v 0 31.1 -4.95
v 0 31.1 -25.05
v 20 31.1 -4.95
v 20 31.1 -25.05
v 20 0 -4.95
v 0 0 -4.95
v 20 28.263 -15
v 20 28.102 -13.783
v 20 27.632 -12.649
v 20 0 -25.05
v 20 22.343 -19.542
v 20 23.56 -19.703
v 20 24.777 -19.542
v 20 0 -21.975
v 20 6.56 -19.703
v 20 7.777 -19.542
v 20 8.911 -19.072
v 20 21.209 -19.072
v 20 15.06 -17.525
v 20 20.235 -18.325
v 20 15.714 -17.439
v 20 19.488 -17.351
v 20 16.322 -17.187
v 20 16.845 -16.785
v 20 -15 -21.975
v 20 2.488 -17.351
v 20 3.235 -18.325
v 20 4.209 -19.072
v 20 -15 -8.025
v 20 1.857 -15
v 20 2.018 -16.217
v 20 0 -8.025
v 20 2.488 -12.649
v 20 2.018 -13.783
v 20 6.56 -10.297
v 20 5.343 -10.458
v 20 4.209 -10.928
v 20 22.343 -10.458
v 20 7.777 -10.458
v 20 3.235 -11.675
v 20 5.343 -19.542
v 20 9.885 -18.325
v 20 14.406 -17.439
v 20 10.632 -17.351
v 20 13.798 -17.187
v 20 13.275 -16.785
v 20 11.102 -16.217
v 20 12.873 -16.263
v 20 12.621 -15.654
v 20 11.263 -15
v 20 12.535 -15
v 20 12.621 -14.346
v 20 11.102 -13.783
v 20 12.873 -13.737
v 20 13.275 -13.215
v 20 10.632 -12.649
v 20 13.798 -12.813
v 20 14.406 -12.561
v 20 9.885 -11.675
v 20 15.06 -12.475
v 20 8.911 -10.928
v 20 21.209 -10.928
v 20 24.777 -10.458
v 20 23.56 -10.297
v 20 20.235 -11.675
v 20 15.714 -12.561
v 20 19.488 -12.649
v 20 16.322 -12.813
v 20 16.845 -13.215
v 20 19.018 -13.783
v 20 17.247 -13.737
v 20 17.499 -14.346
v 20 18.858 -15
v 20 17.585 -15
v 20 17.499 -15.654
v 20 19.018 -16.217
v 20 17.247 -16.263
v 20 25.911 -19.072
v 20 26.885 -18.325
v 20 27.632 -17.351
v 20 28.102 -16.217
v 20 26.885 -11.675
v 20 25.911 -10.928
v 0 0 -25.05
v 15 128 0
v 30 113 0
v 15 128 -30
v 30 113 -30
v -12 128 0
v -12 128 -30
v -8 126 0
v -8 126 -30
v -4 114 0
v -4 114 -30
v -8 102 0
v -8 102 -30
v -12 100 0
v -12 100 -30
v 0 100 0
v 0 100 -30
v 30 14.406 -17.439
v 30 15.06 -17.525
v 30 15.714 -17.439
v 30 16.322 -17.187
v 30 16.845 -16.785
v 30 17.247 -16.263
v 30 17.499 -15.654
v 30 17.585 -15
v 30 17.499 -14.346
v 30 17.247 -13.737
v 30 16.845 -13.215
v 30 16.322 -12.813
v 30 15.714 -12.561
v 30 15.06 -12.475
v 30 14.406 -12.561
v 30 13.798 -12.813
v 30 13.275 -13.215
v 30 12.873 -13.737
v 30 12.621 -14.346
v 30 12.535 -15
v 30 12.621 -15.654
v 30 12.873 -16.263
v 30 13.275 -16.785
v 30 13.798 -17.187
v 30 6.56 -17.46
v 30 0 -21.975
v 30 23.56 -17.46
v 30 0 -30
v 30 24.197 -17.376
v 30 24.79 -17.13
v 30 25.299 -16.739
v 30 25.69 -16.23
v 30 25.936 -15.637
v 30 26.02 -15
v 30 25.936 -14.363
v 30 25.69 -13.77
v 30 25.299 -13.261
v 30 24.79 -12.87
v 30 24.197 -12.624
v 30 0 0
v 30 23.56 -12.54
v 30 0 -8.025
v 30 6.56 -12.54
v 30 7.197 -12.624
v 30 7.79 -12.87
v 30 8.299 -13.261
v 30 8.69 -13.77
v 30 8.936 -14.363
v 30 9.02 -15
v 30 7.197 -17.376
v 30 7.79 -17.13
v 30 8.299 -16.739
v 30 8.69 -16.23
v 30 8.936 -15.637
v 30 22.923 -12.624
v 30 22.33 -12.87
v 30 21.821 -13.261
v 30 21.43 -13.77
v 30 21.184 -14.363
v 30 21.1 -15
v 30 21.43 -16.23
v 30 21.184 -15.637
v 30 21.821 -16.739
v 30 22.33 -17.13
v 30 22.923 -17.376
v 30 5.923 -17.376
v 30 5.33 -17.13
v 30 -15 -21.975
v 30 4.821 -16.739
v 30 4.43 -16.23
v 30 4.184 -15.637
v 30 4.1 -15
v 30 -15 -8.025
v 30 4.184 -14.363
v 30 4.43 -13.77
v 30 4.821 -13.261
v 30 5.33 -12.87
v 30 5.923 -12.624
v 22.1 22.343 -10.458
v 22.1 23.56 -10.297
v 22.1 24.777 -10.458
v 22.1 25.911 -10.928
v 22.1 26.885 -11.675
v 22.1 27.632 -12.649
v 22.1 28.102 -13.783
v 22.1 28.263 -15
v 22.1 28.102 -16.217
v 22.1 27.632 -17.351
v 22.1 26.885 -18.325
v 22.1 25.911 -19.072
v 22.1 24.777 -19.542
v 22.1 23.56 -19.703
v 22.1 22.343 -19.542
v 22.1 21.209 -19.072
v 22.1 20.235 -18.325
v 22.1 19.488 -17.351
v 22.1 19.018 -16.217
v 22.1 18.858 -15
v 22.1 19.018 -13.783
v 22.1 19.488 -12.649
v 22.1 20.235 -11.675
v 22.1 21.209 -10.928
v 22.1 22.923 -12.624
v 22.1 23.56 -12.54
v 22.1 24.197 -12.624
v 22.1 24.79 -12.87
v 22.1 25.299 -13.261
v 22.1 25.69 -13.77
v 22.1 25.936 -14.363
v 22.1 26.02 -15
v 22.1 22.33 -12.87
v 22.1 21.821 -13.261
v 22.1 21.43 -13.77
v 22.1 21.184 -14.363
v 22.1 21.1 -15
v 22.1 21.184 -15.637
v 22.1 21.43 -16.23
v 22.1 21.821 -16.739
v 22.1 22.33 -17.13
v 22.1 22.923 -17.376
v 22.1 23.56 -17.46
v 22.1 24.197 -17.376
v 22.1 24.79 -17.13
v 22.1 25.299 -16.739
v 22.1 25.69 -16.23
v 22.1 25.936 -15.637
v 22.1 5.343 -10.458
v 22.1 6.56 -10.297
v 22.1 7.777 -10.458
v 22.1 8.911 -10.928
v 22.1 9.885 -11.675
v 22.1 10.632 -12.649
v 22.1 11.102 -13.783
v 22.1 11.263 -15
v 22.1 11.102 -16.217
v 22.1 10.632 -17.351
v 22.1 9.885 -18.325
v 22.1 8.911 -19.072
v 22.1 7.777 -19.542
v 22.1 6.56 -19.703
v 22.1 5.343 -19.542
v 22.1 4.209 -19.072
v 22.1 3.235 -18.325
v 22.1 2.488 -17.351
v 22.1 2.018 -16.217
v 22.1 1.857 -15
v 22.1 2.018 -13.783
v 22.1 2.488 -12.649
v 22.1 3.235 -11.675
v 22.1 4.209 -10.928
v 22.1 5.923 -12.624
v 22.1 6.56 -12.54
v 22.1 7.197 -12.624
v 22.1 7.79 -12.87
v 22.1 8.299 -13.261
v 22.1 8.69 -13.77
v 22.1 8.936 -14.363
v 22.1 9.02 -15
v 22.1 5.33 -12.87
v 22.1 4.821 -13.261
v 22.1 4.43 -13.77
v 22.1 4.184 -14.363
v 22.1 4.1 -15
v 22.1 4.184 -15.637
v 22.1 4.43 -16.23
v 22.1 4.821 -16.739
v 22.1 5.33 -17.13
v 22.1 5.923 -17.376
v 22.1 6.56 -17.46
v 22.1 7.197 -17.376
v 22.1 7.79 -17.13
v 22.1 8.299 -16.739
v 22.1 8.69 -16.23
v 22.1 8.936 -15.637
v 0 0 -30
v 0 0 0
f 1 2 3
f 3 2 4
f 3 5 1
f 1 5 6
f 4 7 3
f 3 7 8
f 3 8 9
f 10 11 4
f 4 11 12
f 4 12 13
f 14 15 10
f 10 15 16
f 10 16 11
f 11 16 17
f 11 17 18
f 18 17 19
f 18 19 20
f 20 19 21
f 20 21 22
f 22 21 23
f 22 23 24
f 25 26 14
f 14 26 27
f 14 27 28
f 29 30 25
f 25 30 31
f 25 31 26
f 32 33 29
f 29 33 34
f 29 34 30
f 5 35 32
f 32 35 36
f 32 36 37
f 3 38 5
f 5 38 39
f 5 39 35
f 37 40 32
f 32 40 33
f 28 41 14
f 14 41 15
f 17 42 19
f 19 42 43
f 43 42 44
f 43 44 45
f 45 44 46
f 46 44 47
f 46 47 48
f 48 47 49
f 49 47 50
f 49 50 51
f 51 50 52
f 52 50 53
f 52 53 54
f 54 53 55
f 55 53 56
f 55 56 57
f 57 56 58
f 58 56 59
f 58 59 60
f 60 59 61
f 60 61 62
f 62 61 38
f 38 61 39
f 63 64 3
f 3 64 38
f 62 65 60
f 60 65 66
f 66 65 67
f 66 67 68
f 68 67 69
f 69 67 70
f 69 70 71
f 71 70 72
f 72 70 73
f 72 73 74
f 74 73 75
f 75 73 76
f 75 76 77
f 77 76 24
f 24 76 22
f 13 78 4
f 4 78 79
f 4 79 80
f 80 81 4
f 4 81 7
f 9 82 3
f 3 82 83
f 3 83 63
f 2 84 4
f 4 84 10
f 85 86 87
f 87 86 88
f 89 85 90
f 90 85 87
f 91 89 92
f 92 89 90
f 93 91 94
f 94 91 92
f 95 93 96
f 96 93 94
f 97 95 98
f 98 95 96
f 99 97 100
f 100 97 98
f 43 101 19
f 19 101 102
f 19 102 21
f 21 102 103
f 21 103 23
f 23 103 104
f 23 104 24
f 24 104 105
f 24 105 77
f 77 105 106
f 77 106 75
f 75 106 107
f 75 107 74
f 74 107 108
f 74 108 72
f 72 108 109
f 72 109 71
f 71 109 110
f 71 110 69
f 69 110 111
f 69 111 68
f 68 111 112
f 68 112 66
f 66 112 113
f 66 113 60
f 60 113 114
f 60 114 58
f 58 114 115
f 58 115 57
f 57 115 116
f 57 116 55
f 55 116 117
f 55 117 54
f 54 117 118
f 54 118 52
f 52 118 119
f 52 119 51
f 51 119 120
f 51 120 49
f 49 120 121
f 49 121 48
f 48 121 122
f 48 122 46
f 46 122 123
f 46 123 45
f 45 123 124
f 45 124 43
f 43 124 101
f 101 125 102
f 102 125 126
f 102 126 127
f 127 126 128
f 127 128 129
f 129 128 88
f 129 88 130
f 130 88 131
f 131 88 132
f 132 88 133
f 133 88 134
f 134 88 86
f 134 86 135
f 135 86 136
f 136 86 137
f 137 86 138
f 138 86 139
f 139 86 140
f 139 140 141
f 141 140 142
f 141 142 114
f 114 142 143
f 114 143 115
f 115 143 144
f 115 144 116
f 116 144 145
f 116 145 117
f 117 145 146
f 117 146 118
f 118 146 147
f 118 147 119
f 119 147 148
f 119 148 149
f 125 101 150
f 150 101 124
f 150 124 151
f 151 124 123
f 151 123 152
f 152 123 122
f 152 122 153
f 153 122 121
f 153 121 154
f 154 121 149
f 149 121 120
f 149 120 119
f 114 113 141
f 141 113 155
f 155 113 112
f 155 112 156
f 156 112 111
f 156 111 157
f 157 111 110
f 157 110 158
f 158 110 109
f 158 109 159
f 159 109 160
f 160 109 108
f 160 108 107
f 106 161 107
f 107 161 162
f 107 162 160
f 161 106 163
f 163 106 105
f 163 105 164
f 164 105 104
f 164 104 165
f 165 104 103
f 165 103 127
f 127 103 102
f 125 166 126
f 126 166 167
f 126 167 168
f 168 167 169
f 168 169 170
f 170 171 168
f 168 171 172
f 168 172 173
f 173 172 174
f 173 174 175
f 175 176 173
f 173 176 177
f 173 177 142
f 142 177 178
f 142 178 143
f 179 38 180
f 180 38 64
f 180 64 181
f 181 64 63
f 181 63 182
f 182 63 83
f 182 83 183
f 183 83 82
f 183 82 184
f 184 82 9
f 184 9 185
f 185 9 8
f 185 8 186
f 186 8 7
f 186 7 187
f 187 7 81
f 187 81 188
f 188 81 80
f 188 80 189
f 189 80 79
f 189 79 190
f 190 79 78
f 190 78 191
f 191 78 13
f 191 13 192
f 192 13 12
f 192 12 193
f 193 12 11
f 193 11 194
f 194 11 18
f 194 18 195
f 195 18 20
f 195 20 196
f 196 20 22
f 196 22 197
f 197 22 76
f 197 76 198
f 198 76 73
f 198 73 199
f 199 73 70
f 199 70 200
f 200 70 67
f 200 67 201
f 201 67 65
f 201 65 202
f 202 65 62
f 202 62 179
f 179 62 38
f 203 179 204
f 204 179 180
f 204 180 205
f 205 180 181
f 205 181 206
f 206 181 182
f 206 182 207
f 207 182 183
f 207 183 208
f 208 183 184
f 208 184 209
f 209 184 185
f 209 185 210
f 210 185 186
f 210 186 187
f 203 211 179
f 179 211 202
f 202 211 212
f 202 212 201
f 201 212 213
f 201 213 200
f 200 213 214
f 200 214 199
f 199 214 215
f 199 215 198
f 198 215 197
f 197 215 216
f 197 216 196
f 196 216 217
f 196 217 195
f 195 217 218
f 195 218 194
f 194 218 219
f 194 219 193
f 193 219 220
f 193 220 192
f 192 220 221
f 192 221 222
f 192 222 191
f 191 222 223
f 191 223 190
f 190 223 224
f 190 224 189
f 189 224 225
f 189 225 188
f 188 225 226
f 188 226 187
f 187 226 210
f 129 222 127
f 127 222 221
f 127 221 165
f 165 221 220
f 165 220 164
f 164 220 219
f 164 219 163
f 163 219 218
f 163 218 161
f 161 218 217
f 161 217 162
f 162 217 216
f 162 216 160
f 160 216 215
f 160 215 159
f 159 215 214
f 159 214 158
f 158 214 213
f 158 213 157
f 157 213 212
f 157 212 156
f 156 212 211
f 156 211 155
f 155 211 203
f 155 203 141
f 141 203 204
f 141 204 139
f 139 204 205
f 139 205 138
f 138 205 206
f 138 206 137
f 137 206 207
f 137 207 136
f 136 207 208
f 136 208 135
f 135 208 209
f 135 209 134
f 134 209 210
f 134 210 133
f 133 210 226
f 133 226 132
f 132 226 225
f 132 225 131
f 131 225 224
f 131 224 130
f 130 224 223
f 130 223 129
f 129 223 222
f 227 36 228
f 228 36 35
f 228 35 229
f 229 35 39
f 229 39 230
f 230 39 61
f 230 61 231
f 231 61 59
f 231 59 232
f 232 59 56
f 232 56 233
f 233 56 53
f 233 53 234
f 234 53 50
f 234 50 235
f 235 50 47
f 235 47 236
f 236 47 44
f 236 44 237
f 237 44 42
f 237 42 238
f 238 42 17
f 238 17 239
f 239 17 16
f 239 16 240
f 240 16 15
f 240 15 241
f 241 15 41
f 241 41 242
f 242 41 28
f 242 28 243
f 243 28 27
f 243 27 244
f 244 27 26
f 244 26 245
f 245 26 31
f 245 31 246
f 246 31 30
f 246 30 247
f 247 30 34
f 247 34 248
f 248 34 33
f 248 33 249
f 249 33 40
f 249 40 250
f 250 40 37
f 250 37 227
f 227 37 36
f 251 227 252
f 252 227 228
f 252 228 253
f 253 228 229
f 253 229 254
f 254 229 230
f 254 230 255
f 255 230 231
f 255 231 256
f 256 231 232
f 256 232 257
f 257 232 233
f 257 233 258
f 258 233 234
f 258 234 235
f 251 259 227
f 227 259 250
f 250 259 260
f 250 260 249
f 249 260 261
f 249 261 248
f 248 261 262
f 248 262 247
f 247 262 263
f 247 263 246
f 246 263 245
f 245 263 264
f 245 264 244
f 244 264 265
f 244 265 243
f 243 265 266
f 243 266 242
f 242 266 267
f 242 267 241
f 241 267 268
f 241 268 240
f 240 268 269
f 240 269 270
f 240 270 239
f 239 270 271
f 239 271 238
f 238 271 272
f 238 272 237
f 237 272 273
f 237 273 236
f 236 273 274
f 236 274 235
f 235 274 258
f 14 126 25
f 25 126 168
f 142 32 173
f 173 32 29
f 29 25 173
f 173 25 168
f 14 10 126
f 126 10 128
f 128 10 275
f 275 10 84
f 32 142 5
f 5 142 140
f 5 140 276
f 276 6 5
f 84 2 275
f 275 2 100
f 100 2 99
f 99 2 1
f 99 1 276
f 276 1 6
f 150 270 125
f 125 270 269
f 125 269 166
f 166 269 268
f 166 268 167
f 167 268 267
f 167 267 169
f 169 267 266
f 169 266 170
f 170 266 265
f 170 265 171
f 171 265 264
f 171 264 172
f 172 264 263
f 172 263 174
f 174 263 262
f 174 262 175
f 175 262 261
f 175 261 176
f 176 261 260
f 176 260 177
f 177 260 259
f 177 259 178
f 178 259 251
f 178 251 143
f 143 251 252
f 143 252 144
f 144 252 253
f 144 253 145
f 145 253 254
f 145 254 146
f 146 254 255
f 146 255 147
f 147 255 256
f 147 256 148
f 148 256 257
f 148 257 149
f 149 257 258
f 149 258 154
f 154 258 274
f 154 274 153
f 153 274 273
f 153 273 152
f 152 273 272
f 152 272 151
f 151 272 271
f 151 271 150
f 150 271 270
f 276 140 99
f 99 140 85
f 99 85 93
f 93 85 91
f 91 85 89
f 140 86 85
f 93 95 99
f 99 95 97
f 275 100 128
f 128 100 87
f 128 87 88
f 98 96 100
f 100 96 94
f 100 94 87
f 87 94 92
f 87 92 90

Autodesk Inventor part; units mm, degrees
ref_plane "YZ Plane" through (0, 0, 0) normal (1, 0, 0) x (0, 1, 0)
ref_plane "XZ Plane" through (0, 0, 0) normal (0, 1, 0) x (-1, 0, 0)
ref_plane "XY Plane" through (0, 0, 0) normal (0, 0, 1) x (1, 0, 0)
sketch "Sketch1" plane through (0, 0, 0) normal (0, 0, 1) x (1, 0, 0)
  line L0 (0, 0) -> (25, 0)
  line L1 (25, 0) -> (25, 40)
  line L2 (25, 40) -> (0, 40)
  line L3 (0, 40) -> (0, 0)
  dimension "d1" = 25
  dimension "d2" = 40
  dimension "d3" = 25
extrude "Extrusion1" add sketch "Sketch1" against normal blind 30
sketch "Sketch2" plane through (25, 0, 0) normal (1, 0, 0) x (0, 0, -1)
  line L0 (0, 0) -> (30, 0) projected
  circle A0 centre (15, 6.56) radius 2.46
extrude "Extrusion2" cut sketch "Sketch2" against normal blind 30
sketch "Sketch3" plane through (0, 0, 0) normal (-1, 0, 0) x (0, 0, 1)
  line L0 (0, 0) -> (-30, 0) projected
  line L1 (-25.05, 0) -> (-4.95, 0)
  line L2 (-4.95, 0) -> (-4.95, 33.12)
  line L3 (-4.95, 33.12) -> (-25.05, 33.12)
  line L4 (-25.05, 33.12) -> (-25.05, 0)
  dimension "d11" = 20.1
extrude "Extrusion3" cut sketch "Sketch3" against normal blind 20
sketch "Sketch4" plane through (0, 0, 0) normal (0, -1, 0) x (1, 0, 0)
  line L0 (20, -4.95) -> (20, -25.05) projected
  line L1 (20, -15) -> (25, -15)
  line L2 (25, 0) -> (25, -30) projected
  line L3 (20, -8.025) -> (25, -8.025)
  line L4 (25, -8.025) -> (25, -21.975)
  line L5 (25, -21.975) -> (20, -21.975)
  line L6 (20, -21.975) -> (20, -8.025)
  line L7 (20, -8.025) -> (25, -21.975) construction
  line L8 (25, -8.025) -> (20, -21.975) construction
  line L9 (25, -12.54) -> (25, -17.46) projected
  point P0 (0, 0)
  point P1 (22.5, -15)
  dimension "d14" = 13.95
extrude "Extrusion4" add sketch "Sketch4" along normal blind 15
sketch "Sketch5" plane through (20, 0, 0) normal (-1, 0, 0) x (0, 0, 1)
  circle A0 centre (-15, 6.56) radius 2.46 projected
  circle A1 centre (-15, 6.56) radius 4.7025
  circle A2 centre (-15, 6.56) radius 2.46 projected
  circle A3 centre (-15, 6.56) radius 2.46
  point P0 (0, 0)
  dimension "d17" = 9.405
extrude "Extrusion5" cut sketch "Sketch5" against normal blind 2.1
sketch "Sketch6" plane through (25, 0, 0) normal (1, 0, 0) x (0, 0, -1)
  circle A0 centre (15, 6.56) radius 4.7025 projected
  line L0 (15, 6.56) -> (15, 23.56)
  circle A1 centre (15, 23.56) radius 2.46
  point P0 (0, 0)
  dimension "d20" = 17
  dimension "d21" = 4.92
extrude "Extrusion6" cut sketch "Sketch6" against normal blind 10 contours A1
sketch "Sketch7" plane through (20, 0, 0) normal (-1, 0, 0) x (0, 0, 1)
  circle A0 centre (-15, 23.56) radius 2.46 projected
  circle A1 centre (-15, 23.56) radius 4.7025
  point P0 (0, 0)
  dimension "d24" = 9.405
extrude "Extrusion7" cut sketch "Sketch7" against normal blind 2.1
sketch "Sketch9" plane through (25, 0, 0) normal (1, 0, 0) x (0, 0, -1)
  circle A0 centre (15, 6.56) radius 2.46 projected
  circle A1 centre (15, 6.56) radius 2.46
  circle A2 centre (15, 23.56) radius 2.46 projected
  circle A3 centre (15, 23.56) radius 2.46
  line L0 (30, 40) -> (30, 0) projected
  line L1 (30, 0) -> (30, 40)
  line L2 (30, 40) -> (0, 40)
  line L3 (0, 40) -> (0, 0)
  line L4 (0, 0) -> (8.025, 0) projected
  line L5 (21.975, 0) -> (21.975, -15)
  line L6 (21.975, -15) -> (8.025, -15)
  line L7 (8.025, -15) -> (8.025, 0)
  line L8 (0, 0) -> (8.025, 0)
  line L9 (21.975, 0) -> (30, 0)
extrude "Extrusion8" add sketch "Sketch9" along normal blind 5
sketch "Sketch10" plane through (0, 40, 0) normal (0, 1, 0) x (1, 0, 0)
  line L0 (0, 30) -> (30, 30) projected
  line L1 (30, 0) -> (0, 0) projected
  line L2 (0, 30) -> (30, 30)
  line L3 (30, 30) -> (30, 0)
  line L4 (30, 0) -> (0, 0)
  line L5 (0, 0) -> (0, 30)
extrude "Extrusion9" add sketch "Sketch10" along normal blind 30
sketch "Sketch12" plane through (30, 0, 0) normal (1, 0, 0) x (0, 0, -1)
  circle A0 centre (15, 6.56) radius 2.46 projected
  line L0 (15, 6.56) -> (15, 15.06)
  circle A1 centre (15, 15.06) radius 2.525
  point P0 (0, 0)
  dimension "d31" = 8.5
  dimension "d33" = 5.05
extrude "Extrusion10" cut sketch "Sketch12" against normal blind 30 contours A1
sketch "Sketch14" plane through (0, 0, 0) normal (0, 0, 1) x (1, 0, 0)
  line L0 (30, 70) -> (0, 70) projected
  line L1 (0, 70) -> (0, 85)
  line L2 (30, 0) -> (30, 70) projected
  line L3 (30, 113) -> (30, 70)
  line L4 (30, 105) -> (30, 100)
  line L5 (-12, 128) -> (15, 128)
  line L6 (-8, 126) -> (-12, 128)
  line L7 (-8, 126) -> (-4, 114)
  line L8 (-8, 102) -> (-12, 100)
  line L9 (-8, 102) -> (-4, 114)
  line L10 (30, 113) -> (15, 128)
  line L11 (0, 100) -> (-12, 100)
  line L12 (0, 100) -> (0, 85)
  point P0 (0, 0)
  dimension "d69" = 28
  dimension "d74" = 12
extrude "Extrusion12" add sketch "Sketch14" against normal blind 30
sketch "Sketch15" plane through (0, 0, -25.05) normal (-1, 0, 0) x (0, 0, 1)
  line L0 (0, 33.12) -> (20.1, 33.12) projected
  line L1 (20.1, 33.12) -> (20.1, 0) projected
  line L2 (0, 33.12) -> (20.1, 33.12)
  line L3 (20.1, 33.12) -> (20.1, 31.1)
  line L4 (20.1, 31.1) -> (0, 31.1)
  line L5 (0, 31.1) -> (0, 33.12)
  point P0 (25.05, 0)
  dimension "d57" = 2.02
extrude "Extrusion13" add sketch "Sketch15" against normal blind 20
properties part number "24mm_x_30mm"
